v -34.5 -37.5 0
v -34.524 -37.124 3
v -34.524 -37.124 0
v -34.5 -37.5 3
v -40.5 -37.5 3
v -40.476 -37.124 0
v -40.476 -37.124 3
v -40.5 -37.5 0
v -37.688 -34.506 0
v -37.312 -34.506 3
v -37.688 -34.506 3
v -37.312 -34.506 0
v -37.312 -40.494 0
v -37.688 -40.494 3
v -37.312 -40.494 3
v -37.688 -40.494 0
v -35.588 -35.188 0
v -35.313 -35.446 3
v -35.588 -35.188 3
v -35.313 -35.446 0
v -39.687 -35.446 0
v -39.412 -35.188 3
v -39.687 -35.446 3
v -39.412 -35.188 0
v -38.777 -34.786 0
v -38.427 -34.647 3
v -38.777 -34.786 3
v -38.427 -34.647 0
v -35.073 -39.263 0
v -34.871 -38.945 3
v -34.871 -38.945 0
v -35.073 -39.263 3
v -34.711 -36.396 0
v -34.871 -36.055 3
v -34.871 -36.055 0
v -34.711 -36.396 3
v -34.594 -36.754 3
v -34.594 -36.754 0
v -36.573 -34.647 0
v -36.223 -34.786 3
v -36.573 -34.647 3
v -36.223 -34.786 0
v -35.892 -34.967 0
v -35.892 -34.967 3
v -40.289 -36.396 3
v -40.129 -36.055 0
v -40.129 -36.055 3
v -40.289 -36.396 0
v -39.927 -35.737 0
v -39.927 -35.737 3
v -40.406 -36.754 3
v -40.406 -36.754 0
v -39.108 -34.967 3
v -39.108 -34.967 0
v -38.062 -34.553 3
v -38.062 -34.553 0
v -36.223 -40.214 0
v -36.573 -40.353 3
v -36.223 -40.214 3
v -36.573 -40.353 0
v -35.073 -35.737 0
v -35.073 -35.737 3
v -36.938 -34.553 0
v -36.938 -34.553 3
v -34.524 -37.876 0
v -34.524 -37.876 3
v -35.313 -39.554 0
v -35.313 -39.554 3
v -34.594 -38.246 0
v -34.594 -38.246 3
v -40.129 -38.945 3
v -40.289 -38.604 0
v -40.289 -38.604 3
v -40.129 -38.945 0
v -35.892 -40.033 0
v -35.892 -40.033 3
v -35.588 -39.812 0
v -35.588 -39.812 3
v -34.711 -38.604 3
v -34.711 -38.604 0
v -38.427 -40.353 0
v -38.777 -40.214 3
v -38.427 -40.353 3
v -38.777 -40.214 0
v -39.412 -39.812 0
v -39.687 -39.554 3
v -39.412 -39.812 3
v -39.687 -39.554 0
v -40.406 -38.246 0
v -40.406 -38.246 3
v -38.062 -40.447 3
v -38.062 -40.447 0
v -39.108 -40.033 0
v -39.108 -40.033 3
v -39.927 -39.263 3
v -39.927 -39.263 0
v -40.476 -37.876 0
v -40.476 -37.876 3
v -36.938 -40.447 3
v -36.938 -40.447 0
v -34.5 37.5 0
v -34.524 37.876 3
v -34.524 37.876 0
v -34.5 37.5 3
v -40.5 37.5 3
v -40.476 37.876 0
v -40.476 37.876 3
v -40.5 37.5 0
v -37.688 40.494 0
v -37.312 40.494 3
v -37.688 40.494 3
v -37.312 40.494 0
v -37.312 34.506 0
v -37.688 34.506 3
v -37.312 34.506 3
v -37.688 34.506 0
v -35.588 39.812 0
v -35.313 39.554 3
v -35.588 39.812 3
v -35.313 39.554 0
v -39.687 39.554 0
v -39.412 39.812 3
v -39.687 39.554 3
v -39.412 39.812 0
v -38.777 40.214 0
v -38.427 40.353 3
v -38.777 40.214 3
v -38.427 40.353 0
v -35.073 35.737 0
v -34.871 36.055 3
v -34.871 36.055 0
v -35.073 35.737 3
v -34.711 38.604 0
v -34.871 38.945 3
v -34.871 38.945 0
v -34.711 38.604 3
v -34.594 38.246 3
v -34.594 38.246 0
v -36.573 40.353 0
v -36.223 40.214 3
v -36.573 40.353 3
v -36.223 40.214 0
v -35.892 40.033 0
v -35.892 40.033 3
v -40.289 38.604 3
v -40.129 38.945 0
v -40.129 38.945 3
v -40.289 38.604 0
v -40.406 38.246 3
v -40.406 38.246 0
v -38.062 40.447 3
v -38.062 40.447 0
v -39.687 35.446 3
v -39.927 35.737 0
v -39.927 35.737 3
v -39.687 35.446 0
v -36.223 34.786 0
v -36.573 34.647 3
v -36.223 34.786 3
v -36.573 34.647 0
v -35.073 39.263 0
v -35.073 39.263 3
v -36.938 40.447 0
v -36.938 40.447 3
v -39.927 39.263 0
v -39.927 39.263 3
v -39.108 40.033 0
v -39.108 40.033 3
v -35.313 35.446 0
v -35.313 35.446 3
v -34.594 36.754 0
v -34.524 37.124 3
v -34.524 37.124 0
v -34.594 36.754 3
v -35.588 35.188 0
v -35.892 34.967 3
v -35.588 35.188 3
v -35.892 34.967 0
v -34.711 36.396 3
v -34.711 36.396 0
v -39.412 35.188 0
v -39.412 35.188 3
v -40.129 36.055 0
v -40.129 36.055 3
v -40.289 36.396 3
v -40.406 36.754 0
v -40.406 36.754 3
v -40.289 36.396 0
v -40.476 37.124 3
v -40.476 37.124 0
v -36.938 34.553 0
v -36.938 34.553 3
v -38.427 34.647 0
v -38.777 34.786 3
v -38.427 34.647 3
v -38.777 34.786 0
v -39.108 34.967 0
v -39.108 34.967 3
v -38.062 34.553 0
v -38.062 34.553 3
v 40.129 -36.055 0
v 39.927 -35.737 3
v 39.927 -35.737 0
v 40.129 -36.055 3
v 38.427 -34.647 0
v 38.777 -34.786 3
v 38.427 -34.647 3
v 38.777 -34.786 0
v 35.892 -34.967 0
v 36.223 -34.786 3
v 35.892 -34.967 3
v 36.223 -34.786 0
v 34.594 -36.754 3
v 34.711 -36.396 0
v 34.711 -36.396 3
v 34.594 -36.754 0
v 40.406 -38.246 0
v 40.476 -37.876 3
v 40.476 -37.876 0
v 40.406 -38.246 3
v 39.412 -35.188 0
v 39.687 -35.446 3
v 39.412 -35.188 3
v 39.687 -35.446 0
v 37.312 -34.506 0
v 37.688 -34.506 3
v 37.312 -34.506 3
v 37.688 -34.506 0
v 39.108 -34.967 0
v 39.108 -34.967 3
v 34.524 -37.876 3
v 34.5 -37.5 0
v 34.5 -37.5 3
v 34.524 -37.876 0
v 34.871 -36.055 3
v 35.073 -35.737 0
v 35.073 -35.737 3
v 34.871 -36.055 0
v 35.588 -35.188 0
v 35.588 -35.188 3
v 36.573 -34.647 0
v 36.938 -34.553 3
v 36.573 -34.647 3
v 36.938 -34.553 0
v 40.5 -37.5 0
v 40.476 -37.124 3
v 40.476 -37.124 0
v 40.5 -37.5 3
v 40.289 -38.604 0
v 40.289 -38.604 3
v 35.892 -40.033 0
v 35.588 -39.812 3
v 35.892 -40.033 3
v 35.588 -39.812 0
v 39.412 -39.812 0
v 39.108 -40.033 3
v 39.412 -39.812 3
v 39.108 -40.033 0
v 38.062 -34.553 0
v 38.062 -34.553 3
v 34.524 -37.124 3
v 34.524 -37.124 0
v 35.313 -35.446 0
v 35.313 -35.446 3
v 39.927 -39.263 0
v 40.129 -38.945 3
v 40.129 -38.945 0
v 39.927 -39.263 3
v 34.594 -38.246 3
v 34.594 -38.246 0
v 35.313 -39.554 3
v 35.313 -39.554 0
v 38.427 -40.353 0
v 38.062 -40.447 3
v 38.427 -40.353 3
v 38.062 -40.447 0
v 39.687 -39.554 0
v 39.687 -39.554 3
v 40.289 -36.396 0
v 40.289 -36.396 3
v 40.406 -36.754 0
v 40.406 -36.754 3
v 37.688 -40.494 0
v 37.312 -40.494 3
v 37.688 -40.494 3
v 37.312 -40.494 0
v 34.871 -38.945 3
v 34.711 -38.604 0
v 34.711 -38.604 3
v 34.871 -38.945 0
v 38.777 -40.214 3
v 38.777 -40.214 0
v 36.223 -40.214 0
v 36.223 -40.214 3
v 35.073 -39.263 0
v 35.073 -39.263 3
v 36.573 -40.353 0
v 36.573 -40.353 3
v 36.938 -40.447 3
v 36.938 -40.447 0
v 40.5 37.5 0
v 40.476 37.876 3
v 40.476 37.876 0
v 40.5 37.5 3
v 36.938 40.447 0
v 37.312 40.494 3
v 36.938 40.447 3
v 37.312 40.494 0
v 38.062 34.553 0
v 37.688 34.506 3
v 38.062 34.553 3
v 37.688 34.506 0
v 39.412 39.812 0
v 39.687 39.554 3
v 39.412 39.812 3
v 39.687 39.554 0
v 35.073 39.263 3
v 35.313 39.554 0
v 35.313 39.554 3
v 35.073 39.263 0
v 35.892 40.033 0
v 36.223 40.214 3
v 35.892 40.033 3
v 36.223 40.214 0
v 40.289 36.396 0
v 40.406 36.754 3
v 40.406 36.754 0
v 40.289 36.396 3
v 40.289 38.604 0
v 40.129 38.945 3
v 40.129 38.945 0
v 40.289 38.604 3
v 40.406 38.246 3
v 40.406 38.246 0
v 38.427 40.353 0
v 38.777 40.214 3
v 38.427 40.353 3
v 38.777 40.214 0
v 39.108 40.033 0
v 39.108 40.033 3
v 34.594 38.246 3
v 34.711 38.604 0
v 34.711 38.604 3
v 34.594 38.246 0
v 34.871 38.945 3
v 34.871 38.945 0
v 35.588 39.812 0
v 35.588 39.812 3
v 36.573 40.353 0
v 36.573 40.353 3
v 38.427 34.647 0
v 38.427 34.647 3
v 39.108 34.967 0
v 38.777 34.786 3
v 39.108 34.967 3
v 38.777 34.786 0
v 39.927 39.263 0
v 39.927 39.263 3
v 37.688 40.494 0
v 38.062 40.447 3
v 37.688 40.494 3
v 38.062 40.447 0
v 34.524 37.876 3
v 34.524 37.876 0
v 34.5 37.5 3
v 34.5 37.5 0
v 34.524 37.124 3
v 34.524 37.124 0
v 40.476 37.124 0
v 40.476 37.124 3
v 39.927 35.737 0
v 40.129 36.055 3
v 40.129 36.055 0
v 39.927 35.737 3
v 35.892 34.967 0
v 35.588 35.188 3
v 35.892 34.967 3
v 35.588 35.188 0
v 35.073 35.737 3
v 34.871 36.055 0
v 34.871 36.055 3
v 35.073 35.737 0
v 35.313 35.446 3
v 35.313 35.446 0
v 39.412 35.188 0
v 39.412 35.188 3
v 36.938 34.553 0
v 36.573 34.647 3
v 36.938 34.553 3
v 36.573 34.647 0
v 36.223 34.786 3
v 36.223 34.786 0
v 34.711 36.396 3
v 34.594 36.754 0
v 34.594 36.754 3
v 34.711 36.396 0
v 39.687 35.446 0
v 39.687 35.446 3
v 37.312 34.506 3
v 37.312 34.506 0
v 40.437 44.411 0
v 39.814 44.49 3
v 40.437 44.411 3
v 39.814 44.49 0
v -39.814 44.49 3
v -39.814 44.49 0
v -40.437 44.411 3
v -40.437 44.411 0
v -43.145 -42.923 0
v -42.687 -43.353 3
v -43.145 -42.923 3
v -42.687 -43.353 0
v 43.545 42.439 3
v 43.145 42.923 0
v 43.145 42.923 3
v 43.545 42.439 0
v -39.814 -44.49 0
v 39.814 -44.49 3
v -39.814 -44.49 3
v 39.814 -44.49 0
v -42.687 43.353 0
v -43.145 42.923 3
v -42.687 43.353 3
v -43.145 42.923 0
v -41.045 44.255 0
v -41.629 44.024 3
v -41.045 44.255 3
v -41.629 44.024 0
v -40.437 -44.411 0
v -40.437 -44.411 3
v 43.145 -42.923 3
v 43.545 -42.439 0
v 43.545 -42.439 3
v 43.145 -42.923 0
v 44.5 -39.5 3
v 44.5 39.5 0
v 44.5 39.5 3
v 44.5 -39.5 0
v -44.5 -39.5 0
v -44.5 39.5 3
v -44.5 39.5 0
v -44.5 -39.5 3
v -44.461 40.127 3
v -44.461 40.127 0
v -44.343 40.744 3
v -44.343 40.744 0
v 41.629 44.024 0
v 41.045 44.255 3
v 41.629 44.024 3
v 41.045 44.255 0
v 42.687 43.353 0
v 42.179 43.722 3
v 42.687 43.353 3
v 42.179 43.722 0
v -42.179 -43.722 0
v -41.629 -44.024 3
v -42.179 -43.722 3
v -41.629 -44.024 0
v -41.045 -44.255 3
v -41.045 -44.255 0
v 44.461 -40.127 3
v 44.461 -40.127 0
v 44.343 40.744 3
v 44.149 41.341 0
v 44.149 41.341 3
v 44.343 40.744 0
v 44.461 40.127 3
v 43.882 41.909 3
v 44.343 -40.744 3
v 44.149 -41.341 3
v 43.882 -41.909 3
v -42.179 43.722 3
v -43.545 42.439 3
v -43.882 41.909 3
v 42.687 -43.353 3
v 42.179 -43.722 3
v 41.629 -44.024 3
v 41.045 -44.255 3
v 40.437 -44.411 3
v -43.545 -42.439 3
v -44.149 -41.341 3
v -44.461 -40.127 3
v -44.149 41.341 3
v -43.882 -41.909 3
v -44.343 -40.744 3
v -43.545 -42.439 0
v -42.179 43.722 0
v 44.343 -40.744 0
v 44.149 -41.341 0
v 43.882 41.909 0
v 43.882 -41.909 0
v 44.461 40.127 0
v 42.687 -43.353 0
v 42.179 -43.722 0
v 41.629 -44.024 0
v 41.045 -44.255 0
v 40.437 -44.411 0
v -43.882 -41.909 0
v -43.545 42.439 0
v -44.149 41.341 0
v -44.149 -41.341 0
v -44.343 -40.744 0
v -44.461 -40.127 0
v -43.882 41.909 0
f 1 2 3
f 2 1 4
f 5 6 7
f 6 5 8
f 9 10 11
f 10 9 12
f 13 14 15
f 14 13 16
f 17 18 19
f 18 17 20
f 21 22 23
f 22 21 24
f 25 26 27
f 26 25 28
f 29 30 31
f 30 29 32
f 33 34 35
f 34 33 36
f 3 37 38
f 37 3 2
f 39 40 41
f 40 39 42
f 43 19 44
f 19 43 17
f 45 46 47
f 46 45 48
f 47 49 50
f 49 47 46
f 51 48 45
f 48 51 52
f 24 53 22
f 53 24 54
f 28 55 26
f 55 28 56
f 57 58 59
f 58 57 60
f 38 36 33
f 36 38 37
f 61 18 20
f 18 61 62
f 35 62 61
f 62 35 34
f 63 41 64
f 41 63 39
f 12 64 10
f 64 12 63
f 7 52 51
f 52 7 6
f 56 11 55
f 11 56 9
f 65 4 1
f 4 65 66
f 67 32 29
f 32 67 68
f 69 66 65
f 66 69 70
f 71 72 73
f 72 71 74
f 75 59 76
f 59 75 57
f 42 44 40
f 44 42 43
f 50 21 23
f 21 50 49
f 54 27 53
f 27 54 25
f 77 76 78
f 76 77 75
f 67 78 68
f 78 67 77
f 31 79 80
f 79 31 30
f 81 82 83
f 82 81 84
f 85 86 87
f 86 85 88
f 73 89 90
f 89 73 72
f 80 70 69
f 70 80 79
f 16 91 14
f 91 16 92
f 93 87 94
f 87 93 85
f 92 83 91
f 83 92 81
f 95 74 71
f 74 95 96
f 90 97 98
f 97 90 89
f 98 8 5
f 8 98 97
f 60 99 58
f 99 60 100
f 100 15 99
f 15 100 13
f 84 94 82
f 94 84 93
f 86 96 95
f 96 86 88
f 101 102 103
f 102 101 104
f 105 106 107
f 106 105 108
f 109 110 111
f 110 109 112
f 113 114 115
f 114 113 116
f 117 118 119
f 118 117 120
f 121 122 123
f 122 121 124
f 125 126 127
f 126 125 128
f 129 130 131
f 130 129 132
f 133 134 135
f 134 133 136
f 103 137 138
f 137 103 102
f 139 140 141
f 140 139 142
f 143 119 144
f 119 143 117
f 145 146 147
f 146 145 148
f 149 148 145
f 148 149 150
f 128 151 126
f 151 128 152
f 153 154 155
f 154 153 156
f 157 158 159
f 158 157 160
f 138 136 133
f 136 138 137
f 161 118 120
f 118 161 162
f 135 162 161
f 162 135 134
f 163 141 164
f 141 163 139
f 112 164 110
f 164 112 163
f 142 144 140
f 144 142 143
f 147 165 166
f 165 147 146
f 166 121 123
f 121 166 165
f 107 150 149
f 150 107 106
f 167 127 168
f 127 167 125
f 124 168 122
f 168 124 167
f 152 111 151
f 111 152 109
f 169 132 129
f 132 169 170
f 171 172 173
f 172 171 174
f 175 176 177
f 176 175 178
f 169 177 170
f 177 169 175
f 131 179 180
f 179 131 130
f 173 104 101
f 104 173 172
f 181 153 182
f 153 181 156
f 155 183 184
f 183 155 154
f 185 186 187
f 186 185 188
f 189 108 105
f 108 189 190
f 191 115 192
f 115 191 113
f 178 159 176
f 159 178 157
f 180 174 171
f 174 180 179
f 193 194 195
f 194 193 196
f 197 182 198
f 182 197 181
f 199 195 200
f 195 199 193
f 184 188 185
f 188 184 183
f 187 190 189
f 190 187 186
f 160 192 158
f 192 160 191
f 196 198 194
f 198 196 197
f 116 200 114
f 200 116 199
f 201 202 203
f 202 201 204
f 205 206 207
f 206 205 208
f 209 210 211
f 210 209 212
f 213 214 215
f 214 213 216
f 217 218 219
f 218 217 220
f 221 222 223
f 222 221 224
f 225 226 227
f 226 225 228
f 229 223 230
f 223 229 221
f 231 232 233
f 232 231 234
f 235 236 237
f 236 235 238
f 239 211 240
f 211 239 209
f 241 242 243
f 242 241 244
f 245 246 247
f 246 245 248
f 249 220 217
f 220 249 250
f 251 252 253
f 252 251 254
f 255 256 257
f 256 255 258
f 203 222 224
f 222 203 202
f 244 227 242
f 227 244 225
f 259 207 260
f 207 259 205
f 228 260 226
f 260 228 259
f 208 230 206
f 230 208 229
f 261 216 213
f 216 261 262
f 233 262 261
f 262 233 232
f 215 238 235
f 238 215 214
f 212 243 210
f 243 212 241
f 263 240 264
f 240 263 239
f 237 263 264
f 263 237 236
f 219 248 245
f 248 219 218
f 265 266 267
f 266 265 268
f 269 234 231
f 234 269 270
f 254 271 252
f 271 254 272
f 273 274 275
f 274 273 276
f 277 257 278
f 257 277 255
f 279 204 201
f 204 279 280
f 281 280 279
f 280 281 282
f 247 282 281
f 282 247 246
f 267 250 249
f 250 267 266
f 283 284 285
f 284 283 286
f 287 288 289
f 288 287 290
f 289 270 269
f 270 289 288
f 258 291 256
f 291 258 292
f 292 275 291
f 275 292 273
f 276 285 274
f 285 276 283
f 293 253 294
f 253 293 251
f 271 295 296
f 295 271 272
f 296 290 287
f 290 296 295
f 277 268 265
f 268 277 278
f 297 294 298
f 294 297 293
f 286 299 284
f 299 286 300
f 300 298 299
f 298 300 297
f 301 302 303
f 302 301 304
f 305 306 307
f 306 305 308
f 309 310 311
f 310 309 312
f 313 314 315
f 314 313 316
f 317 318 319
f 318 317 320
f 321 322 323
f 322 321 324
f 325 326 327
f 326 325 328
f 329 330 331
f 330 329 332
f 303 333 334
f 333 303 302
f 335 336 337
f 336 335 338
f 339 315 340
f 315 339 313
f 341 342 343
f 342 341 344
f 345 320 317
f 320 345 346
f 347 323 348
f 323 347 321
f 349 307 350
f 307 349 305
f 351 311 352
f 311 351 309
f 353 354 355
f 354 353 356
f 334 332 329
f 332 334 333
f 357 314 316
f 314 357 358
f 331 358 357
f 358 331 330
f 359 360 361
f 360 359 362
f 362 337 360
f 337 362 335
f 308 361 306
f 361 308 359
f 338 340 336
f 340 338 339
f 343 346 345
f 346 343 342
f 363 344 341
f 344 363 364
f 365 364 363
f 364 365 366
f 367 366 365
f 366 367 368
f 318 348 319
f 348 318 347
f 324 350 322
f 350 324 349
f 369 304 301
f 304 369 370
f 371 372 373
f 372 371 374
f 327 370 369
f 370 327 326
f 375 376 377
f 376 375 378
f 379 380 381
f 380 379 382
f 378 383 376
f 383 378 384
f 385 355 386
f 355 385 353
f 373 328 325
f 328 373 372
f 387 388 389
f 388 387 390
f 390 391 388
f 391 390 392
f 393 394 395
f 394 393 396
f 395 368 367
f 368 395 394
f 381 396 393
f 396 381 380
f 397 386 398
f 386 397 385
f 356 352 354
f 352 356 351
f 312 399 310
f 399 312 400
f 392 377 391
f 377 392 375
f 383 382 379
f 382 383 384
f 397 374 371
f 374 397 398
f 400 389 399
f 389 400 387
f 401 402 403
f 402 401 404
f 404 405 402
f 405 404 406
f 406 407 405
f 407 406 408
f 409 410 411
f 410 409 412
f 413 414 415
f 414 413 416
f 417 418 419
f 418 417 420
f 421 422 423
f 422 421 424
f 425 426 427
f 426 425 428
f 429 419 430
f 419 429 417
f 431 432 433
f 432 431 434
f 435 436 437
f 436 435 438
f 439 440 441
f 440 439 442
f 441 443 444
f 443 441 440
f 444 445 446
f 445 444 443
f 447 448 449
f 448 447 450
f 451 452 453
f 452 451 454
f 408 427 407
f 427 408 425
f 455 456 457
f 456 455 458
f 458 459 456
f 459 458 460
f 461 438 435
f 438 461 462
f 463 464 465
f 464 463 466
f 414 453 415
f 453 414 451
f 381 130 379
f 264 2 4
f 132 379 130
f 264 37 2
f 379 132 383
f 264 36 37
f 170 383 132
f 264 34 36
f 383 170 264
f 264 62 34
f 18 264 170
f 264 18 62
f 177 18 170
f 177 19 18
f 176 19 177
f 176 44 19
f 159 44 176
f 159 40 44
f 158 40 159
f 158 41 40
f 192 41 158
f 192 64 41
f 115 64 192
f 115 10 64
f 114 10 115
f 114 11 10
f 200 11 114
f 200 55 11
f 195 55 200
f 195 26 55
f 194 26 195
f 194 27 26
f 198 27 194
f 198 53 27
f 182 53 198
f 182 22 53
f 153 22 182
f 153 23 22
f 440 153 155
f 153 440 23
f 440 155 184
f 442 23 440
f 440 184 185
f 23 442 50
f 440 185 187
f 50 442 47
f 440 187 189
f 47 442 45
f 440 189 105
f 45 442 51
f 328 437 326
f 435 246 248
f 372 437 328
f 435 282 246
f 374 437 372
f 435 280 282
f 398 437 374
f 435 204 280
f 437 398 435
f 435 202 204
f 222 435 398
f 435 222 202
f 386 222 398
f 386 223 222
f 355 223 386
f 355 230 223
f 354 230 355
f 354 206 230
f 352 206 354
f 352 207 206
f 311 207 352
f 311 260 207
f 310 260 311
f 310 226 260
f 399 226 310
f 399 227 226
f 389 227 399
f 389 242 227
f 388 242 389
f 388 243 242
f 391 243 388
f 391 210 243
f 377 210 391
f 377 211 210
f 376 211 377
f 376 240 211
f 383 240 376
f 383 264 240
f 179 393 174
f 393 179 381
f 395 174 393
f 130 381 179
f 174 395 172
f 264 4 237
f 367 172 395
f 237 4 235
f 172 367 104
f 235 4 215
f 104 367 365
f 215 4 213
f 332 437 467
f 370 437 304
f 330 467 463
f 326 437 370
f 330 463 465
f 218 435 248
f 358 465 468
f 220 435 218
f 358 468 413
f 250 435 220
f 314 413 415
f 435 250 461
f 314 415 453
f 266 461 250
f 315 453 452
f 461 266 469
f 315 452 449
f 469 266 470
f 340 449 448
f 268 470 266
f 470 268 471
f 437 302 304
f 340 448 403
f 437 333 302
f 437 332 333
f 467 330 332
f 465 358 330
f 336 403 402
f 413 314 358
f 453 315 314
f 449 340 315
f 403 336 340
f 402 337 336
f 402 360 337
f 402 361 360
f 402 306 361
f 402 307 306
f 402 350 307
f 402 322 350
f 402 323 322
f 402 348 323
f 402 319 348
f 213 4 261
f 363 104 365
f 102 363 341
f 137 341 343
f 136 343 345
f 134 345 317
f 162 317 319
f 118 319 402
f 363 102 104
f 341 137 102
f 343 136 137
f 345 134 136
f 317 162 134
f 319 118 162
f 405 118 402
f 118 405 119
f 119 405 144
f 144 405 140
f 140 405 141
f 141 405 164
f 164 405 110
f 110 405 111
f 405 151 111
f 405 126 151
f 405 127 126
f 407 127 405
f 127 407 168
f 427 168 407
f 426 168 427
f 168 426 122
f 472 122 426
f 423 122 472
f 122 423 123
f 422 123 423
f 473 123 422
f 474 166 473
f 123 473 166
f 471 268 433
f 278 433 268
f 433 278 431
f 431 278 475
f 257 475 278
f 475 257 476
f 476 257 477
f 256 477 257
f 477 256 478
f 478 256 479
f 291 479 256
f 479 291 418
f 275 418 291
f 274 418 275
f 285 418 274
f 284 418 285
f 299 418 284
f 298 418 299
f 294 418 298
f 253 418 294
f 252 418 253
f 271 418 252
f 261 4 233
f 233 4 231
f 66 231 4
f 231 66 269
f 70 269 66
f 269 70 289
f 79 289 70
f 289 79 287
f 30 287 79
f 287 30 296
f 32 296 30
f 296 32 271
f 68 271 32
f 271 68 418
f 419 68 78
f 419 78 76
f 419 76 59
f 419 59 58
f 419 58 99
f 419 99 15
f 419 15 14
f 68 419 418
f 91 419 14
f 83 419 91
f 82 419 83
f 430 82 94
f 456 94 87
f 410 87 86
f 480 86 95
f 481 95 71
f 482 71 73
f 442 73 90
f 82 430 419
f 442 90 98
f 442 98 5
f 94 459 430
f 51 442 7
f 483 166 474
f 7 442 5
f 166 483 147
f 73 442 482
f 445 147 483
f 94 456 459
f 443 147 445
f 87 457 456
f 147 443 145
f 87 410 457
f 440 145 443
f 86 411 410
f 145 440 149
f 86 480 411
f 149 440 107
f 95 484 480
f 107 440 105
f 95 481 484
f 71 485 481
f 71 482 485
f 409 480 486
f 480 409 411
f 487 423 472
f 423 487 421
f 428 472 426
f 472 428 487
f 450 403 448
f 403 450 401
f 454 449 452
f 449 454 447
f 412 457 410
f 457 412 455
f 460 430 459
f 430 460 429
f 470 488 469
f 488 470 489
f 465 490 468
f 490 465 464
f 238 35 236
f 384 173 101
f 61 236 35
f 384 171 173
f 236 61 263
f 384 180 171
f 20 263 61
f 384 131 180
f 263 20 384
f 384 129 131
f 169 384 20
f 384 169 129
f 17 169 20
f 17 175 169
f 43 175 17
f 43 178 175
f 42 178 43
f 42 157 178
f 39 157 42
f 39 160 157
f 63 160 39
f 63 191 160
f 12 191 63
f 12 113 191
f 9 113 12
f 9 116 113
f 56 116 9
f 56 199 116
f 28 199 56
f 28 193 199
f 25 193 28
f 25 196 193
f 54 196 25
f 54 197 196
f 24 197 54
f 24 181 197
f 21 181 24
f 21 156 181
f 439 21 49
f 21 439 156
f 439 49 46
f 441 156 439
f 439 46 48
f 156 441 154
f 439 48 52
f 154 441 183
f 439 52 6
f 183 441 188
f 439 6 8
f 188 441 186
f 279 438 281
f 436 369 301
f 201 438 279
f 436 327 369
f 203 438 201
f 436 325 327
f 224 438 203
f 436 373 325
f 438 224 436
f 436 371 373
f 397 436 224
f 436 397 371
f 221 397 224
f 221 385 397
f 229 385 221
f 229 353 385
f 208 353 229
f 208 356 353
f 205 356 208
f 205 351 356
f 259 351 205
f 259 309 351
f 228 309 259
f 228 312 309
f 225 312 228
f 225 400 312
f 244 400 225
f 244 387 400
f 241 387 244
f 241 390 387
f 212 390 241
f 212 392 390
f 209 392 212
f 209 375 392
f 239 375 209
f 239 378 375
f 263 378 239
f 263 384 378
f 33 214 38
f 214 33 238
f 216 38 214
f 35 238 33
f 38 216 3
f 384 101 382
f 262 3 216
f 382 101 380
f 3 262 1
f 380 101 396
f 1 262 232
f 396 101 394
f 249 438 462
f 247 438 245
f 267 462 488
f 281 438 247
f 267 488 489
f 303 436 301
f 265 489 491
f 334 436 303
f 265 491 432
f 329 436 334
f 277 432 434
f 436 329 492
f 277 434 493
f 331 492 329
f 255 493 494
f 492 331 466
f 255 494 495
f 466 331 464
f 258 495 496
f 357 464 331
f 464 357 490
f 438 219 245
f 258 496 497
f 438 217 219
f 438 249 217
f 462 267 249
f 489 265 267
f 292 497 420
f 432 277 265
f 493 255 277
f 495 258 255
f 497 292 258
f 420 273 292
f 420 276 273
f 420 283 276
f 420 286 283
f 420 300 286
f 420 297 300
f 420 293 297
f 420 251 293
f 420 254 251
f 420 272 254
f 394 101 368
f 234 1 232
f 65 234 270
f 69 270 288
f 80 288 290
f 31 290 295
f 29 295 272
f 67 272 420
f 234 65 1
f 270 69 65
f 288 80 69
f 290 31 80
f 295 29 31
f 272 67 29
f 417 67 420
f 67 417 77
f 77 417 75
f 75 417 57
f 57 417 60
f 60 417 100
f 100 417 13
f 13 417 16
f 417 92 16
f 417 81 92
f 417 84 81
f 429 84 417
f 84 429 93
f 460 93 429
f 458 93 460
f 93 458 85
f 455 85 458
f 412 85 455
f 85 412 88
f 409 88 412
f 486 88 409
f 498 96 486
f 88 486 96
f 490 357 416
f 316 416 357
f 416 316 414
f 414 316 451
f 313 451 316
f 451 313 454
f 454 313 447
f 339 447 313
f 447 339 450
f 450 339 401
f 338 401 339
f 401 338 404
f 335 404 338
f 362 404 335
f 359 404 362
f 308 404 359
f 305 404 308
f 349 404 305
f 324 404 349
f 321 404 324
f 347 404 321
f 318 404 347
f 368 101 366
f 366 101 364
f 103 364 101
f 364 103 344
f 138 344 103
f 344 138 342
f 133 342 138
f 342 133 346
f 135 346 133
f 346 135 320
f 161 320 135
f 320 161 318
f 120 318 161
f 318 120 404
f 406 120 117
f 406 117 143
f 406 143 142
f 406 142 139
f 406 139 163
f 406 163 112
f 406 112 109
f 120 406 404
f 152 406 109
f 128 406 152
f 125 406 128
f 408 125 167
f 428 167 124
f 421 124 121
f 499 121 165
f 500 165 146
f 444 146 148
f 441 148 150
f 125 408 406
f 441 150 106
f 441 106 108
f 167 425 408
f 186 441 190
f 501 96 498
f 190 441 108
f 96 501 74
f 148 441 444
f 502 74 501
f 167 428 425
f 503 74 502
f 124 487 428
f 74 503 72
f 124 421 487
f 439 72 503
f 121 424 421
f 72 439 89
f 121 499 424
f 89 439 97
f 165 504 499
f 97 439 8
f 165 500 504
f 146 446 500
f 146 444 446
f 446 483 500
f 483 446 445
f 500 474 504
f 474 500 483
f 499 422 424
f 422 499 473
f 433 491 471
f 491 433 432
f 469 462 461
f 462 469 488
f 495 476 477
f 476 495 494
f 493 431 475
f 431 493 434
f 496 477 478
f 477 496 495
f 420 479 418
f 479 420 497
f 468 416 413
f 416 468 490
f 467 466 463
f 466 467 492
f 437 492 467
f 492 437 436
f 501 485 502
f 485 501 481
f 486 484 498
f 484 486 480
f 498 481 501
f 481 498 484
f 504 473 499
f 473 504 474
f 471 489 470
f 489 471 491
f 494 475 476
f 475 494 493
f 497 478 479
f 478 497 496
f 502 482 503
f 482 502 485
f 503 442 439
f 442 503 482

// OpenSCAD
$fn = 50;


difference() {
	union() {
		hull() {
			translate(v = [-39.5000000000, 39.5000000000, 0]) {
				cylinder(h = 3, r = 5);
			}
			translate(v = [39.5000000000, 39.5000000000, 0]) {
				cylinder(h = 3, r = 5);
			}
			translate(v = [-39.5000000000, -39.5000000000, 0]) {
				cylinder(h = 3, r = 5);
			}
			translate(v = [39.5000000000, -39.5000000000, 0]) {
				cylinder(h = 3, r = 5);
			}
		}
	}
	union() {
		translate(v = [-37.5000000000, -37.5000000000, -100.0000000000]) {
			cylinder(h = 200, r = 3.0000000000);
		}
		translate(v = [-37.5000000000, 37.5000000000, -100.0000000000]) {
			cylinder(h = 200, r = 3.0000000000);
		}
		translate(v = [37.5000000000, -37.5000000000, -100.0000000000]) {
			cylinder(h = 200, r = 3.0000000000);
		}
		translate(v = [37.5000000000, 37.5000000000, -100.0000000000]) {
			cylinder(h = 200, r = 3.0000000000);
		}
	}
}
